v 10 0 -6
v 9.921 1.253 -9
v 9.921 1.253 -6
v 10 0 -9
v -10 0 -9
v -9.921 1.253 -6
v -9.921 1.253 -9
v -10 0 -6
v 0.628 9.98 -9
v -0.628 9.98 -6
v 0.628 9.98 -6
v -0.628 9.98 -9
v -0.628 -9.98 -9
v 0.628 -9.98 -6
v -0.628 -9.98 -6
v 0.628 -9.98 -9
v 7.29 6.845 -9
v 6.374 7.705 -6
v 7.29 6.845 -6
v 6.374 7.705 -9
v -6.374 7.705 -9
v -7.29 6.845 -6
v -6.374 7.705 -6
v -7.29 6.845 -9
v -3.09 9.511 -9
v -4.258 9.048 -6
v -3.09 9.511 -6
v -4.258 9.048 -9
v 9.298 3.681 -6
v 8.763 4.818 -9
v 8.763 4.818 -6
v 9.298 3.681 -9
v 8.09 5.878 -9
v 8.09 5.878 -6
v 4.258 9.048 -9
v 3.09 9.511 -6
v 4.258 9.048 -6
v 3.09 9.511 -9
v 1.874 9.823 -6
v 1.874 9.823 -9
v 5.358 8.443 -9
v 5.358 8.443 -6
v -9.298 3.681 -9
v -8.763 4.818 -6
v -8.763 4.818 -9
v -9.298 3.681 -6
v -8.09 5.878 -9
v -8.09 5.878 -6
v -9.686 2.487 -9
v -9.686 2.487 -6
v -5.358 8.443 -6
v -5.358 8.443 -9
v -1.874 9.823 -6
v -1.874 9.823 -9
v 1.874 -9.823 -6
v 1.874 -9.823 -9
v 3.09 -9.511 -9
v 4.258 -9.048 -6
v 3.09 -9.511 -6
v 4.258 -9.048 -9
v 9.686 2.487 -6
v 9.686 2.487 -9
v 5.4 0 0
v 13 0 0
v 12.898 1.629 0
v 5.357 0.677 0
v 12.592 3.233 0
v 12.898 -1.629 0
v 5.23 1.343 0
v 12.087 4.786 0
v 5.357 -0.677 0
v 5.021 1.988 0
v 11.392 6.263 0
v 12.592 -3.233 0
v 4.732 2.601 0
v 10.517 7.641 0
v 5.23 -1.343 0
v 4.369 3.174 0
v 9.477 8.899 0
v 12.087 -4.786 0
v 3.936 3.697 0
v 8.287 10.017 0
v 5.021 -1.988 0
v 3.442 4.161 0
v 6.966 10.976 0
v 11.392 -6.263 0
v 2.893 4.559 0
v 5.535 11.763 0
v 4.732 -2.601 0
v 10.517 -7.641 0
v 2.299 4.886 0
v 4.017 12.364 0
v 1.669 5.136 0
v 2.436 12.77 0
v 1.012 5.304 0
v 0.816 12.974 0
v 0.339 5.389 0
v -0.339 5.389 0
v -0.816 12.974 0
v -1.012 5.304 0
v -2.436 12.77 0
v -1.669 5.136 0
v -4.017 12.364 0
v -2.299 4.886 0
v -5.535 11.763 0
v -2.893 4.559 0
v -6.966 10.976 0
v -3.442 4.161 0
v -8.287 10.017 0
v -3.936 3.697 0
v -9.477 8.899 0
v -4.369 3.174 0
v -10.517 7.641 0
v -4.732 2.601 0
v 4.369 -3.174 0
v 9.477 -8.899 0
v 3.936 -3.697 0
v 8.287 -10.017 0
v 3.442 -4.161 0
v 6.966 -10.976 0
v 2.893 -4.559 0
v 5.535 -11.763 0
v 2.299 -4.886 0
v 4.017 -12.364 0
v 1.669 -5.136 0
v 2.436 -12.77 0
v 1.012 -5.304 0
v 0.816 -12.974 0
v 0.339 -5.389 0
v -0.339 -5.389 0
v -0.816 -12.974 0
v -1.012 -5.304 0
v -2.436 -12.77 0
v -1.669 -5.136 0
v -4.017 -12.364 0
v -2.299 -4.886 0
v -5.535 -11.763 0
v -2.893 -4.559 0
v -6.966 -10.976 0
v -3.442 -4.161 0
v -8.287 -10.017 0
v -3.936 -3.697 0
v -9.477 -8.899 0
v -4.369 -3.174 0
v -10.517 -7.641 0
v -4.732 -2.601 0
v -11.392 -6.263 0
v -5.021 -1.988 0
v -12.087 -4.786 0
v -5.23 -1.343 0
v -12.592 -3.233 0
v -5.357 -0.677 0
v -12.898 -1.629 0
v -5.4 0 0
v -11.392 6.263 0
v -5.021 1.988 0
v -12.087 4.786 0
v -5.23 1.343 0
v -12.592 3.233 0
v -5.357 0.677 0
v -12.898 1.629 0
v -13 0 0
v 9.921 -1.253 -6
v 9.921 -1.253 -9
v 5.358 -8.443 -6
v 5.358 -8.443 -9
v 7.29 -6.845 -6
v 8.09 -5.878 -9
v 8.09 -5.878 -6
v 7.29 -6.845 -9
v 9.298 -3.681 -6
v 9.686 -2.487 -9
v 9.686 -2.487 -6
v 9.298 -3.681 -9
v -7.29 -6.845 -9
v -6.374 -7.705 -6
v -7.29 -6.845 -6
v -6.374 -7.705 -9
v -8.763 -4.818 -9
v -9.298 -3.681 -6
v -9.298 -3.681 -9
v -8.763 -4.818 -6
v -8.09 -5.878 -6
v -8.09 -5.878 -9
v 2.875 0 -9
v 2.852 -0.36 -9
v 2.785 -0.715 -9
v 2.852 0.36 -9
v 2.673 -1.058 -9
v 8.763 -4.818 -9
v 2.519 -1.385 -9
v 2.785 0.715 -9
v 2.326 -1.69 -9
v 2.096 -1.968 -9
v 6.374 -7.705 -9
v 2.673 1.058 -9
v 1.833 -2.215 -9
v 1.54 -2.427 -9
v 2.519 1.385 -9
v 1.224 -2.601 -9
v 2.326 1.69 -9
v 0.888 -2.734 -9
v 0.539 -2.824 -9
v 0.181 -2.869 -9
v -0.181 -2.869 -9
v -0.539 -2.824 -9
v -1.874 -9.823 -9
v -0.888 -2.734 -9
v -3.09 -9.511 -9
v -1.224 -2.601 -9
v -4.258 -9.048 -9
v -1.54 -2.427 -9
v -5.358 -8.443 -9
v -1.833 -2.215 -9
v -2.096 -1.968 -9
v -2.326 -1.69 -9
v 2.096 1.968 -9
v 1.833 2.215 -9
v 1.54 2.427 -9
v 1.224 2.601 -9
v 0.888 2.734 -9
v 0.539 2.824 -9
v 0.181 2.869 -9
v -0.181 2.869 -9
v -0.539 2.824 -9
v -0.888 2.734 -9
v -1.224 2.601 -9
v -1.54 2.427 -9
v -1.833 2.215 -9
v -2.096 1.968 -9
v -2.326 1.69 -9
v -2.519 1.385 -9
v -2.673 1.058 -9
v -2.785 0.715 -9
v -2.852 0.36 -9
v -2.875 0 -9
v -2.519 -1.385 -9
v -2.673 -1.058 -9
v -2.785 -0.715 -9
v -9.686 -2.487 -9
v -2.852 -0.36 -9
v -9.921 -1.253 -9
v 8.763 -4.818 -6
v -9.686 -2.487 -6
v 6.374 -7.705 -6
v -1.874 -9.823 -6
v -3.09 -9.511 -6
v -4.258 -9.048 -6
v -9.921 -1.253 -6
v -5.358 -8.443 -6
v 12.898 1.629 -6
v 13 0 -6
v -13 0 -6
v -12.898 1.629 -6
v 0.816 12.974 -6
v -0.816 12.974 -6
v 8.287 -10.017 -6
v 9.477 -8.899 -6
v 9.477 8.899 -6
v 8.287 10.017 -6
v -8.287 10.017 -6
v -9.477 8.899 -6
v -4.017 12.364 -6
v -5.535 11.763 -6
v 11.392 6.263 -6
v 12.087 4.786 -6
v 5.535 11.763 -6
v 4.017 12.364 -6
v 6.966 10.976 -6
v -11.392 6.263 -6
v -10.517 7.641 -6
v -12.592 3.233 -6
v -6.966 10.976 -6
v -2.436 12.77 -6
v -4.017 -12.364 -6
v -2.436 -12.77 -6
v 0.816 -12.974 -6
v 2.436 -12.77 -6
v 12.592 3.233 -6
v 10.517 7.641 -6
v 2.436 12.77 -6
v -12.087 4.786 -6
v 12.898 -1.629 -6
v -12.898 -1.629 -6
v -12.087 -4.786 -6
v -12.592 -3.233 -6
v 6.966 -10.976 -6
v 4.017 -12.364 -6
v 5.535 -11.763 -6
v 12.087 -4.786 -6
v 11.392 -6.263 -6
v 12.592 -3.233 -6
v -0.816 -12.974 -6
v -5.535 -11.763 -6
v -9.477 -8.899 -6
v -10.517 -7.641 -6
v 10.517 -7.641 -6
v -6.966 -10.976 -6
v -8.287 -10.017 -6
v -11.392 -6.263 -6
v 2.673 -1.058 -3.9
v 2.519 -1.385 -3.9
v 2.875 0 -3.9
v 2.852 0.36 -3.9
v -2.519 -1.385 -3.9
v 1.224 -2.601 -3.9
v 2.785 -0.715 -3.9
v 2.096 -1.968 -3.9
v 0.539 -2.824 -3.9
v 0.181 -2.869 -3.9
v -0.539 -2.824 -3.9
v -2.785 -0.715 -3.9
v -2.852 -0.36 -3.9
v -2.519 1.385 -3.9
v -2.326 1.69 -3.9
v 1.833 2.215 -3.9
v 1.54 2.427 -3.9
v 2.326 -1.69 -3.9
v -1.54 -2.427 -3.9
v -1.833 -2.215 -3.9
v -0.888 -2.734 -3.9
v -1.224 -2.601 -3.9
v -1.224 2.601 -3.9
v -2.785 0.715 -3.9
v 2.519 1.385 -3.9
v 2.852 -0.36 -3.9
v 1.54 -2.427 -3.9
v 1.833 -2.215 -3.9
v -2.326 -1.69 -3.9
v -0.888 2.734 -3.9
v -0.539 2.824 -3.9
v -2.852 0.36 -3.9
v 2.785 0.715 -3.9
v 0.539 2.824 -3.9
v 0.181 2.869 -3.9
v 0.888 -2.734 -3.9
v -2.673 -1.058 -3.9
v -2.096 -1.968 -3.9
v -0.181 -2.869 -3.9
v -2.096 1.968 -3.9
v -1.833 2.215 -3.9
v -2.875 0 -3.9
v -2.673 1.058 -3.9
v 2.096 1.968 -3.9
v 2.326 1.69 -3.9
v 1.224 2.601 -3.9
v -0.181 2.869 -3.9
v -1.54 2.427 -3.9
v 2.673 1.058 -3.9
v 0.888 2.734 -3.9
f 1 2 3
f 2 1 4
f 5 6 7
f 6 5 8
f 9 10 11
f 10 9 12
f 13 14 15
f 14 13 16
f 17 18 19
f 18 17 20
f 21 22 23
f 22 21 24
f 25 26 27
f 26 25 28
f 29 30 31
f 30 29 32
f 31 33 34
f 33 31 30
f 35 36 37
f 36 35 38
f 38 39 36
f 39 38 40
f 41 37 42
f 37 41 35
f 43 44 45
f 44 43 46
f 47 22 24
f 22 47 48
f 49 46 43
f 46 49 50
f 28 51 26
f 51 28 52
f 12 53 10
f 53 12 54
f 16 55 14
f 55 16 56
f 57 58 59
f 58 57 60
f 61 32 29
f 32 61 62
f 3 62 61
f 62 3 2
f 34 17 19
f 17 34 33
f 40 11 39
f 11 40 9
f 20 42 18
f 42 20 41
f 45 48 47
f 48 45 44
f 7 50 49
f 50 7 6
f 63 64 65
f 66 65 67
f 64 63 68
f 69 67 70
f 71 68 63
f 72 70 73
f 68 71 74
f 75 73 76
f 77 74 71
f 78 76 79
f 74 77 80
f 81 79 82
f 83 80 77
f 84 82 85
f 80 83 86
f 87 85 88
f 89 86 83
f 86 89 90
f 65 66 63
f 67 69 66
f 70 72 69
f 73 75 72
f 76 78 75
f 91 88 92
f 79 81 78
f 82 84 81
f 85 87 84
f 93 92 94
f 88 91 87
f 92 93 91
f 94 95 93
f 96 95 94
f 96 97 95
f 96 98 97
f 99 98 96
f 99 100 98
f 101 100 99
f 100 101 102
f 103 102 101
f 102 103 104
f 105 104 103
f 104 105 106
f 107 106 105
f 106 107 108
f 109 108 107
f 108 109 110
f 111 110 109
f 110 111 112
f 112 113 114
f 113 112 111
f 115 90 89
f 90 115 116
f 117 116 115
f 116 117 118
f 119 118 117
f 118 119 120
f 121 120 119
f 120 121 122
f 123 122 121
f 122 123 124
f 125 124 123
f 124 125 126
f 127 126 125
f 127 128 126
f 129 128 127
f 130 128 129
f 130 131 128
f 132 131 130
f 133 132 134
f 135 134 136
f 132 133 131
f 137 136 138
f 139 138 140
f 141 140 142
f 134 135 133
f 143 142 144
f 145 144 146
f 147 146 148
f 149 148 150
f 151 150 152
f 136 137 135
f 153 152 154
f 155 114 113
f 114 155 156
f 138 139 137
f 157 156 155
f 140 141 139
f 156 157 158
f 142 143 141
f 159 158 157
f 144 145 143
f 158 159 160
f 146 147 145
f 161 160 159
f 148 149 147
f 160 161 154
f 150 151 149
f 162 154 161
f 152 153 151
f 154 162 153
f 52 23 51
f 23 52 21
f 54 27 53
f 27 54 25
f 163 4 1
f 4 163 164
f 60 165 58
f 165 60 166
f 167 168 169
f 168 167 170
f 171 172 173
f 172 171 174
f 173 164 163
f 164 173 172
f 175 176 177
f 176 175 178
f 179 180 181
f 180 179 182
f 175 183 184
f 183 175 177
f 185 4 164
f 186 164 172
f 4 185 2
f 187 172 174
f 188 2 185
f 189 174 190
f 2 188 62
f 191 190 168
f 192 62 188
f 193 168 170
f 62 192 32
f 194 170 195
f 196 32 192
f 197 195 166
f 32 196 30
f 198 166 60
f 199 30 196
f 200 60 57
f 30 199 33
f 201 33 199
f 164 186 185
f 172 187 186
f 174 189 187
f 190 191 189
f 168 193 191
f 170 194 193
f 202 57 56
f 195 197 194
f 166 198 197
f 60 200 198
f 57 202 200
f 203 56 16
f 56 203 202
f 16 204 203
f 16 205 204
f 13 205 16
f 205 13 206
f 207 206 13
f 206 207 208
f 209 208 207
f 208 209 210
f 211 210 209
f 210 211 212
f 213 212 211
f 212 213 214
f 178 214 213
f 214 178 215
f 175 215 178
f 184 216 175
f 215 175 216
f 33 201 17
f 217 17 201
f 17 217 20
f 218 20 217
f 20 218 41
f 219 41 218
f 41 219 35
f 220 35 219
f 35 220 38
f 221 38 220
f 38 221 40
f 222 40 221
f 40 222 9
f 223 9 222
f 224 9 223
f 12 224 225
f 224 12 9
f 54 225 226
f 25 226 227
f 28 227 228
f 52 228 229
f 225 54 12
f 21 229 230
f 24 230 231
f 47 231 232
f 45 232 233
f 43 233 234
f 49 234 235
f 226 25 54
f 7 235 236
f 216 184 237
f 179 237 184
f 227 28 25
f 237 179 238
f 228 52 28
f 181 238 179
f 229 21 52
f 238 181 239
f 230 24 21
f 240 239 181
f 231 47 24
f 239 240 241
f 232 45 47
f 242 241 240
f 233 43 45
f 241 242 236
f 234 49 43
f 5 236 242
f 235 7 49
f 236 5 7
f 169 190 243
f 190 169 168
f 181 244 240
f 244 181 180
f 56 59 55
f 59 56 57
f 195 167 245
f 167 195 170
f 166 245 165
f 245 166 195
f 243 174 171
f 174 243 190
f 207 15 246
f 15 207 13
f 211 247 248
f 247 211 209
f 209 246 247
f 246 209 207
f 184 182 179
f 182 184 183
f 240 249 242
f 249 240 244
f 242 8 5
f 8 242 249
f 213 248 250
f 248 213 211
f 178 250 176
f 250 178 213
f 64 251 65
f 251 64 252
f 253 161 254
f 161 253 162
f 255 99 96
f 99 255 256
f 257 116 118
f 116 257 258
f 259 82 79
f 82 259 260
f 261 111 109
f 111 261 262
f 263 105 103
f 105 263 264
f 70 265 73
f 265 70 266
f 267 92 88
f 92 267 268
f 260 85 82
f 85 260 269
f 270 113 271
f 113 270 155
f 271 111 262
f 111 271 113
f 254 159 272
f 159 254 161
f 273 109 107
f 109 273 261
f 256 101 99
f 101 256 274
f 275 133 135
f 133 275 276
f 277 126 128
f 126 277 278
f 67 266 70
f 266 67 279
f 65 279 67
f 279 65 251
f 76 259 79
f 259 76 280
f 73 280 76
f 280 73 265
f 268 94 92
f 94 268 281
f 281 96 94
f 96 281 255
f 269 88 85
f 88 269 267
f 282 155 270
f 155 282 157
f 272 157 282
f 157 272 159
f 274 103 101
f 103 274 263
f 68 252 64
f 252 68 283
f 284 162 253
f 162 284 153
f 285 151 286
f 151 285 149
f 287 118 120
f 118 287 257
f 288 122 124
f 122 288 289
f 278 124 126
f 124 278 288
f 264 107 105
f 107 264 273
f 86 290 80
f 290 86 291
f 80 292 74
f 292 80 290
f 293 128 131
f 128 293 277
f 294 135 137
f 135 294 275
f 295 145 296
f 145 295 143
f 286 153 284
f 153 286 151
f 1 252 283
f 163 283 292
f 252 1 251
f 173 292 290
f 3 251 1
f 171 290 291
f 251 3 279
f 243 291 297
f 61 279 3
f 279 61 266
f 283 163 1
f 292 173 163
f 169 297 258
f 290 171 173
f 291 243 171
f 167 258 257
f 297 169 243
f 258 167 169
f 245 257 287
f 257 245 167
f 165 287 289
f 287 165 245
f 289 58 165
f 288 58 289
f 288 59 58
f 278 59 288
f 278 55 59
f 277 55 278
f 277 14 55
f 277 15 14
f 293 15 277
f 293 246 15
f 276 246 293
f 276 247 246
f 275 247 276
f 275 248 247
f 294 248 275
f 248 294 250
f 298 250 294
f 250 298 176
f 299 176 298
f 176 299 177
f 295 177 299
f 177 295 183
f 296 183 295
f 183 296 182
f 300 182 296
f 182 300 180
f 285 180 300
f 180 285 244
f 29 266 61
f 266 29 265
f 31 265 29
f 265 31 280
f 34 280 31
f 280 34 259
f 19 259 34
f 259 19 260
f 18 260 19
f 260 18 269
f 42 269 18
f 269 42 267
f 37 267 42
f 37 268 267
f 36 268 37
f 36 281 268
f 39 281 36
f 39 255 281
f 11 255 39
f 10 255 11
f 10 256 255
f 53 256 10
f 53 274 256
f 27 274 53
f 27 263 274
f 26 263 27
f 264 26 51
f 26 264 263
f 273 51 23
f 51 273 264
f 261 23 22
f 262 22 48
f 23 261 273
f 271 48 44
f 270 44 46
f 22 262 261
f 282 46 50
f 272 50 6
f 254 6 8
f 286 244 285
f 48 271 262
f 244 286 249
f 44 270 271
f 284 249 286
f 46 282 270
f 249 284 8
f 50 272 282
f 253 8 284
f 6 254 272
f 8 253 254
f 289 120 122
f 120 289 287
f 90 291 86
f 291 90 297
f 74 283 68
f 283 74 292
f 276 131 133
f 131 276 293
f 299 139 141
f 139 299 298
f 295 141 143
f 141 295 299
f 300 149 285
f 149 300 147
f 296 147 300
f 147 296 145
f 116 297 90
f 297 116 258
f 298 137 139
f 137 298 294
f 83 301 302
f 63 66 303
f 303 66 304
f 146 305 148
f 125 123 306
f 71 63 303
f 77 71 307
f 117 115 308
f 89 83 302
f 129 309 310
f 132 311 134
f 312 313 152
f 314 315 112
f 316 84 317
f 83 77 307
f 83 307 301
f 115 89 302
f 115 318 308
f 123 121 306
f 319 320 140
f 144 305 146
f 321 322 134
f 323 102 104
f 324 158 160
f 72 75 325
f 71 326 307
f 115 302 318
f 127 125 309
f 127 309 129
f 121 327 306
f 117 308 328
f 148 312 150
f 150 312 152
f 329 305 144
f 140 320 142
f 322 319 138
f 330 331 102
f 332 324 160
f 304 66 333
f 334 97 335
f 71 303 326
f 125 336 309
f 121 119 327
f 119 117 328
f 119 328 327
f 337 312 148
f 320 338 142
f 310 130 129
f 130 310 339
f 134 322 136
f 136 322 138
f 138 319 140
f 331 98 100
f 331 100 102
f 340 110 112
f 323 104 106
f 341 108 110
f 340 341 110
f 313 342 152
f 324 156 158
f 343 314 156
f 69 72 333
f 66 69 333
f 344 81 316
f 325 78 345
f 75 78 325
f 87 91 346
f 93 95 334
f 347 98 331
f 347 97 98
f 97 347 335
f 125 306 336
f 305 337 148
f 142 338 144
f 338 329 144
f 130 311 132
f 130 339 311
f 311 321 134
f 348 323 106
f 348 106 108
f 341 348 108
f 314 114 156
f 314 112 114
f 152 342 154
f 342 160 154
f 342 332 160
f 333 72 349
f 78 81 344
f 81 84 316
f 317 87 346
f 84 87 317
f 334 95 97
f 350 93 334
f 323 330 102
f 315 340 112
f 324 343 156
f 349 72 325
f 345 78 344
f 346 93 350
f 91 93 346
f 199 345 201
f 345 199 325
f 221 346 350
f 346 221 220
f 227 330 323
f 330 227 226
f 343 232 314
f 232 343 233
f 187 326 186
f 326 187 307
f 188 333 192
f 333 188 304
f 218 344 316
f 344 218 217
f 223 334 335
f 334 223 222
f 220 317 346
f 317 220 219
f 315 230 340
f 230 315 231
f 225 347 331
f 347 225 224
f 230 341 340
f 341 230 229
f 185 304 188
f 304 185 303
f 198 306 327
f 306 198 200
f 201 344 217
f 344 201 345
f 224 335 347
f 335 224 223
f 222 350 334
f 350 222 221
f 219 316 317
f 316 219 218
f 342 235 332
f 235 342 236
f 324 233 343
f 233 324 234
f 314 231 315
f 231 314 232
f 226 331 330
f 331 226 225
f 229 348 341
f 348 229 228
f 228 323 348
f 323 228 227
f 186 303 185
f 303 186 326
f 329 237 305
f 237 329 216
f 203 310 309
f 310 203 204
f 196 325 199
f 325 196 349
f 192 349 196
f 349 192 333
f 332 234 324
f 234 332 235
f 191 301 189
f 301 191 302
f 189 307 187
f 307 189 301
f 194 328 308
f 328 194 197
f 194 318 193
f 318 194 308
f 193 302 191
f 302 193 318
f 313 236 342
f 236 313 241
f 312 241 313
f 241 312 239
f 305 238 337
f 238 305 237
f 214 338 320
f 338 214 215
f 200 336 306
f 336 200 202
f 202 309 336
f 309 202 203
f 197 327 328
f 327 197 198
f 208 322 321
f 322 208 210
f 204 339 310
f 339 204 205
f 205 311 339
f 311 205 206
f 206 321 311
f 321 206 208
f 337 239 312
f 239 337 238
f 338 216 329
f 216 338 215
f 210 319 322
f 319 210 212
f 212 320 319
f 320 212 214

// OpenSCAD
$fn = 50;


difference() {
	union() {
		translate(v = [0, 0, -9.0000000000]) {
			cylinder(h = 9, r = 10.0000000000);
		}
		translate(v = [0, 0, -6.0000000000]) {
			cylinder(h = 6, r = 13.0000000000);
		}
	}
	union() {
		translate(v = [0, 0, 0]) {
			rotate(a = [0, 0, 0]) {
				difference() {
					union() {
						#translate(v = [0, 0, -9.0000000000]) {
							cylinder(h = 9, r = 2.6000000000);
						}
						#translate(v = [0, 0, -3.9000000000]) {
							cylinder(h = 3.9000000000, r = 10.0000000000, r1 = 2.8750000000, r2 = 5.4000000000);
						}
						#translate(v = [0, 0, -9.0000000000]) {
							cylinder(h = 9, r = 2.8750000000);
						}
						#translate(v = [0, 0, -9.0000000000]) {
							cylinder(h = 9, r = 2.6000000000);
						}
					}
					union();
				}
			}
		}
	}
}
